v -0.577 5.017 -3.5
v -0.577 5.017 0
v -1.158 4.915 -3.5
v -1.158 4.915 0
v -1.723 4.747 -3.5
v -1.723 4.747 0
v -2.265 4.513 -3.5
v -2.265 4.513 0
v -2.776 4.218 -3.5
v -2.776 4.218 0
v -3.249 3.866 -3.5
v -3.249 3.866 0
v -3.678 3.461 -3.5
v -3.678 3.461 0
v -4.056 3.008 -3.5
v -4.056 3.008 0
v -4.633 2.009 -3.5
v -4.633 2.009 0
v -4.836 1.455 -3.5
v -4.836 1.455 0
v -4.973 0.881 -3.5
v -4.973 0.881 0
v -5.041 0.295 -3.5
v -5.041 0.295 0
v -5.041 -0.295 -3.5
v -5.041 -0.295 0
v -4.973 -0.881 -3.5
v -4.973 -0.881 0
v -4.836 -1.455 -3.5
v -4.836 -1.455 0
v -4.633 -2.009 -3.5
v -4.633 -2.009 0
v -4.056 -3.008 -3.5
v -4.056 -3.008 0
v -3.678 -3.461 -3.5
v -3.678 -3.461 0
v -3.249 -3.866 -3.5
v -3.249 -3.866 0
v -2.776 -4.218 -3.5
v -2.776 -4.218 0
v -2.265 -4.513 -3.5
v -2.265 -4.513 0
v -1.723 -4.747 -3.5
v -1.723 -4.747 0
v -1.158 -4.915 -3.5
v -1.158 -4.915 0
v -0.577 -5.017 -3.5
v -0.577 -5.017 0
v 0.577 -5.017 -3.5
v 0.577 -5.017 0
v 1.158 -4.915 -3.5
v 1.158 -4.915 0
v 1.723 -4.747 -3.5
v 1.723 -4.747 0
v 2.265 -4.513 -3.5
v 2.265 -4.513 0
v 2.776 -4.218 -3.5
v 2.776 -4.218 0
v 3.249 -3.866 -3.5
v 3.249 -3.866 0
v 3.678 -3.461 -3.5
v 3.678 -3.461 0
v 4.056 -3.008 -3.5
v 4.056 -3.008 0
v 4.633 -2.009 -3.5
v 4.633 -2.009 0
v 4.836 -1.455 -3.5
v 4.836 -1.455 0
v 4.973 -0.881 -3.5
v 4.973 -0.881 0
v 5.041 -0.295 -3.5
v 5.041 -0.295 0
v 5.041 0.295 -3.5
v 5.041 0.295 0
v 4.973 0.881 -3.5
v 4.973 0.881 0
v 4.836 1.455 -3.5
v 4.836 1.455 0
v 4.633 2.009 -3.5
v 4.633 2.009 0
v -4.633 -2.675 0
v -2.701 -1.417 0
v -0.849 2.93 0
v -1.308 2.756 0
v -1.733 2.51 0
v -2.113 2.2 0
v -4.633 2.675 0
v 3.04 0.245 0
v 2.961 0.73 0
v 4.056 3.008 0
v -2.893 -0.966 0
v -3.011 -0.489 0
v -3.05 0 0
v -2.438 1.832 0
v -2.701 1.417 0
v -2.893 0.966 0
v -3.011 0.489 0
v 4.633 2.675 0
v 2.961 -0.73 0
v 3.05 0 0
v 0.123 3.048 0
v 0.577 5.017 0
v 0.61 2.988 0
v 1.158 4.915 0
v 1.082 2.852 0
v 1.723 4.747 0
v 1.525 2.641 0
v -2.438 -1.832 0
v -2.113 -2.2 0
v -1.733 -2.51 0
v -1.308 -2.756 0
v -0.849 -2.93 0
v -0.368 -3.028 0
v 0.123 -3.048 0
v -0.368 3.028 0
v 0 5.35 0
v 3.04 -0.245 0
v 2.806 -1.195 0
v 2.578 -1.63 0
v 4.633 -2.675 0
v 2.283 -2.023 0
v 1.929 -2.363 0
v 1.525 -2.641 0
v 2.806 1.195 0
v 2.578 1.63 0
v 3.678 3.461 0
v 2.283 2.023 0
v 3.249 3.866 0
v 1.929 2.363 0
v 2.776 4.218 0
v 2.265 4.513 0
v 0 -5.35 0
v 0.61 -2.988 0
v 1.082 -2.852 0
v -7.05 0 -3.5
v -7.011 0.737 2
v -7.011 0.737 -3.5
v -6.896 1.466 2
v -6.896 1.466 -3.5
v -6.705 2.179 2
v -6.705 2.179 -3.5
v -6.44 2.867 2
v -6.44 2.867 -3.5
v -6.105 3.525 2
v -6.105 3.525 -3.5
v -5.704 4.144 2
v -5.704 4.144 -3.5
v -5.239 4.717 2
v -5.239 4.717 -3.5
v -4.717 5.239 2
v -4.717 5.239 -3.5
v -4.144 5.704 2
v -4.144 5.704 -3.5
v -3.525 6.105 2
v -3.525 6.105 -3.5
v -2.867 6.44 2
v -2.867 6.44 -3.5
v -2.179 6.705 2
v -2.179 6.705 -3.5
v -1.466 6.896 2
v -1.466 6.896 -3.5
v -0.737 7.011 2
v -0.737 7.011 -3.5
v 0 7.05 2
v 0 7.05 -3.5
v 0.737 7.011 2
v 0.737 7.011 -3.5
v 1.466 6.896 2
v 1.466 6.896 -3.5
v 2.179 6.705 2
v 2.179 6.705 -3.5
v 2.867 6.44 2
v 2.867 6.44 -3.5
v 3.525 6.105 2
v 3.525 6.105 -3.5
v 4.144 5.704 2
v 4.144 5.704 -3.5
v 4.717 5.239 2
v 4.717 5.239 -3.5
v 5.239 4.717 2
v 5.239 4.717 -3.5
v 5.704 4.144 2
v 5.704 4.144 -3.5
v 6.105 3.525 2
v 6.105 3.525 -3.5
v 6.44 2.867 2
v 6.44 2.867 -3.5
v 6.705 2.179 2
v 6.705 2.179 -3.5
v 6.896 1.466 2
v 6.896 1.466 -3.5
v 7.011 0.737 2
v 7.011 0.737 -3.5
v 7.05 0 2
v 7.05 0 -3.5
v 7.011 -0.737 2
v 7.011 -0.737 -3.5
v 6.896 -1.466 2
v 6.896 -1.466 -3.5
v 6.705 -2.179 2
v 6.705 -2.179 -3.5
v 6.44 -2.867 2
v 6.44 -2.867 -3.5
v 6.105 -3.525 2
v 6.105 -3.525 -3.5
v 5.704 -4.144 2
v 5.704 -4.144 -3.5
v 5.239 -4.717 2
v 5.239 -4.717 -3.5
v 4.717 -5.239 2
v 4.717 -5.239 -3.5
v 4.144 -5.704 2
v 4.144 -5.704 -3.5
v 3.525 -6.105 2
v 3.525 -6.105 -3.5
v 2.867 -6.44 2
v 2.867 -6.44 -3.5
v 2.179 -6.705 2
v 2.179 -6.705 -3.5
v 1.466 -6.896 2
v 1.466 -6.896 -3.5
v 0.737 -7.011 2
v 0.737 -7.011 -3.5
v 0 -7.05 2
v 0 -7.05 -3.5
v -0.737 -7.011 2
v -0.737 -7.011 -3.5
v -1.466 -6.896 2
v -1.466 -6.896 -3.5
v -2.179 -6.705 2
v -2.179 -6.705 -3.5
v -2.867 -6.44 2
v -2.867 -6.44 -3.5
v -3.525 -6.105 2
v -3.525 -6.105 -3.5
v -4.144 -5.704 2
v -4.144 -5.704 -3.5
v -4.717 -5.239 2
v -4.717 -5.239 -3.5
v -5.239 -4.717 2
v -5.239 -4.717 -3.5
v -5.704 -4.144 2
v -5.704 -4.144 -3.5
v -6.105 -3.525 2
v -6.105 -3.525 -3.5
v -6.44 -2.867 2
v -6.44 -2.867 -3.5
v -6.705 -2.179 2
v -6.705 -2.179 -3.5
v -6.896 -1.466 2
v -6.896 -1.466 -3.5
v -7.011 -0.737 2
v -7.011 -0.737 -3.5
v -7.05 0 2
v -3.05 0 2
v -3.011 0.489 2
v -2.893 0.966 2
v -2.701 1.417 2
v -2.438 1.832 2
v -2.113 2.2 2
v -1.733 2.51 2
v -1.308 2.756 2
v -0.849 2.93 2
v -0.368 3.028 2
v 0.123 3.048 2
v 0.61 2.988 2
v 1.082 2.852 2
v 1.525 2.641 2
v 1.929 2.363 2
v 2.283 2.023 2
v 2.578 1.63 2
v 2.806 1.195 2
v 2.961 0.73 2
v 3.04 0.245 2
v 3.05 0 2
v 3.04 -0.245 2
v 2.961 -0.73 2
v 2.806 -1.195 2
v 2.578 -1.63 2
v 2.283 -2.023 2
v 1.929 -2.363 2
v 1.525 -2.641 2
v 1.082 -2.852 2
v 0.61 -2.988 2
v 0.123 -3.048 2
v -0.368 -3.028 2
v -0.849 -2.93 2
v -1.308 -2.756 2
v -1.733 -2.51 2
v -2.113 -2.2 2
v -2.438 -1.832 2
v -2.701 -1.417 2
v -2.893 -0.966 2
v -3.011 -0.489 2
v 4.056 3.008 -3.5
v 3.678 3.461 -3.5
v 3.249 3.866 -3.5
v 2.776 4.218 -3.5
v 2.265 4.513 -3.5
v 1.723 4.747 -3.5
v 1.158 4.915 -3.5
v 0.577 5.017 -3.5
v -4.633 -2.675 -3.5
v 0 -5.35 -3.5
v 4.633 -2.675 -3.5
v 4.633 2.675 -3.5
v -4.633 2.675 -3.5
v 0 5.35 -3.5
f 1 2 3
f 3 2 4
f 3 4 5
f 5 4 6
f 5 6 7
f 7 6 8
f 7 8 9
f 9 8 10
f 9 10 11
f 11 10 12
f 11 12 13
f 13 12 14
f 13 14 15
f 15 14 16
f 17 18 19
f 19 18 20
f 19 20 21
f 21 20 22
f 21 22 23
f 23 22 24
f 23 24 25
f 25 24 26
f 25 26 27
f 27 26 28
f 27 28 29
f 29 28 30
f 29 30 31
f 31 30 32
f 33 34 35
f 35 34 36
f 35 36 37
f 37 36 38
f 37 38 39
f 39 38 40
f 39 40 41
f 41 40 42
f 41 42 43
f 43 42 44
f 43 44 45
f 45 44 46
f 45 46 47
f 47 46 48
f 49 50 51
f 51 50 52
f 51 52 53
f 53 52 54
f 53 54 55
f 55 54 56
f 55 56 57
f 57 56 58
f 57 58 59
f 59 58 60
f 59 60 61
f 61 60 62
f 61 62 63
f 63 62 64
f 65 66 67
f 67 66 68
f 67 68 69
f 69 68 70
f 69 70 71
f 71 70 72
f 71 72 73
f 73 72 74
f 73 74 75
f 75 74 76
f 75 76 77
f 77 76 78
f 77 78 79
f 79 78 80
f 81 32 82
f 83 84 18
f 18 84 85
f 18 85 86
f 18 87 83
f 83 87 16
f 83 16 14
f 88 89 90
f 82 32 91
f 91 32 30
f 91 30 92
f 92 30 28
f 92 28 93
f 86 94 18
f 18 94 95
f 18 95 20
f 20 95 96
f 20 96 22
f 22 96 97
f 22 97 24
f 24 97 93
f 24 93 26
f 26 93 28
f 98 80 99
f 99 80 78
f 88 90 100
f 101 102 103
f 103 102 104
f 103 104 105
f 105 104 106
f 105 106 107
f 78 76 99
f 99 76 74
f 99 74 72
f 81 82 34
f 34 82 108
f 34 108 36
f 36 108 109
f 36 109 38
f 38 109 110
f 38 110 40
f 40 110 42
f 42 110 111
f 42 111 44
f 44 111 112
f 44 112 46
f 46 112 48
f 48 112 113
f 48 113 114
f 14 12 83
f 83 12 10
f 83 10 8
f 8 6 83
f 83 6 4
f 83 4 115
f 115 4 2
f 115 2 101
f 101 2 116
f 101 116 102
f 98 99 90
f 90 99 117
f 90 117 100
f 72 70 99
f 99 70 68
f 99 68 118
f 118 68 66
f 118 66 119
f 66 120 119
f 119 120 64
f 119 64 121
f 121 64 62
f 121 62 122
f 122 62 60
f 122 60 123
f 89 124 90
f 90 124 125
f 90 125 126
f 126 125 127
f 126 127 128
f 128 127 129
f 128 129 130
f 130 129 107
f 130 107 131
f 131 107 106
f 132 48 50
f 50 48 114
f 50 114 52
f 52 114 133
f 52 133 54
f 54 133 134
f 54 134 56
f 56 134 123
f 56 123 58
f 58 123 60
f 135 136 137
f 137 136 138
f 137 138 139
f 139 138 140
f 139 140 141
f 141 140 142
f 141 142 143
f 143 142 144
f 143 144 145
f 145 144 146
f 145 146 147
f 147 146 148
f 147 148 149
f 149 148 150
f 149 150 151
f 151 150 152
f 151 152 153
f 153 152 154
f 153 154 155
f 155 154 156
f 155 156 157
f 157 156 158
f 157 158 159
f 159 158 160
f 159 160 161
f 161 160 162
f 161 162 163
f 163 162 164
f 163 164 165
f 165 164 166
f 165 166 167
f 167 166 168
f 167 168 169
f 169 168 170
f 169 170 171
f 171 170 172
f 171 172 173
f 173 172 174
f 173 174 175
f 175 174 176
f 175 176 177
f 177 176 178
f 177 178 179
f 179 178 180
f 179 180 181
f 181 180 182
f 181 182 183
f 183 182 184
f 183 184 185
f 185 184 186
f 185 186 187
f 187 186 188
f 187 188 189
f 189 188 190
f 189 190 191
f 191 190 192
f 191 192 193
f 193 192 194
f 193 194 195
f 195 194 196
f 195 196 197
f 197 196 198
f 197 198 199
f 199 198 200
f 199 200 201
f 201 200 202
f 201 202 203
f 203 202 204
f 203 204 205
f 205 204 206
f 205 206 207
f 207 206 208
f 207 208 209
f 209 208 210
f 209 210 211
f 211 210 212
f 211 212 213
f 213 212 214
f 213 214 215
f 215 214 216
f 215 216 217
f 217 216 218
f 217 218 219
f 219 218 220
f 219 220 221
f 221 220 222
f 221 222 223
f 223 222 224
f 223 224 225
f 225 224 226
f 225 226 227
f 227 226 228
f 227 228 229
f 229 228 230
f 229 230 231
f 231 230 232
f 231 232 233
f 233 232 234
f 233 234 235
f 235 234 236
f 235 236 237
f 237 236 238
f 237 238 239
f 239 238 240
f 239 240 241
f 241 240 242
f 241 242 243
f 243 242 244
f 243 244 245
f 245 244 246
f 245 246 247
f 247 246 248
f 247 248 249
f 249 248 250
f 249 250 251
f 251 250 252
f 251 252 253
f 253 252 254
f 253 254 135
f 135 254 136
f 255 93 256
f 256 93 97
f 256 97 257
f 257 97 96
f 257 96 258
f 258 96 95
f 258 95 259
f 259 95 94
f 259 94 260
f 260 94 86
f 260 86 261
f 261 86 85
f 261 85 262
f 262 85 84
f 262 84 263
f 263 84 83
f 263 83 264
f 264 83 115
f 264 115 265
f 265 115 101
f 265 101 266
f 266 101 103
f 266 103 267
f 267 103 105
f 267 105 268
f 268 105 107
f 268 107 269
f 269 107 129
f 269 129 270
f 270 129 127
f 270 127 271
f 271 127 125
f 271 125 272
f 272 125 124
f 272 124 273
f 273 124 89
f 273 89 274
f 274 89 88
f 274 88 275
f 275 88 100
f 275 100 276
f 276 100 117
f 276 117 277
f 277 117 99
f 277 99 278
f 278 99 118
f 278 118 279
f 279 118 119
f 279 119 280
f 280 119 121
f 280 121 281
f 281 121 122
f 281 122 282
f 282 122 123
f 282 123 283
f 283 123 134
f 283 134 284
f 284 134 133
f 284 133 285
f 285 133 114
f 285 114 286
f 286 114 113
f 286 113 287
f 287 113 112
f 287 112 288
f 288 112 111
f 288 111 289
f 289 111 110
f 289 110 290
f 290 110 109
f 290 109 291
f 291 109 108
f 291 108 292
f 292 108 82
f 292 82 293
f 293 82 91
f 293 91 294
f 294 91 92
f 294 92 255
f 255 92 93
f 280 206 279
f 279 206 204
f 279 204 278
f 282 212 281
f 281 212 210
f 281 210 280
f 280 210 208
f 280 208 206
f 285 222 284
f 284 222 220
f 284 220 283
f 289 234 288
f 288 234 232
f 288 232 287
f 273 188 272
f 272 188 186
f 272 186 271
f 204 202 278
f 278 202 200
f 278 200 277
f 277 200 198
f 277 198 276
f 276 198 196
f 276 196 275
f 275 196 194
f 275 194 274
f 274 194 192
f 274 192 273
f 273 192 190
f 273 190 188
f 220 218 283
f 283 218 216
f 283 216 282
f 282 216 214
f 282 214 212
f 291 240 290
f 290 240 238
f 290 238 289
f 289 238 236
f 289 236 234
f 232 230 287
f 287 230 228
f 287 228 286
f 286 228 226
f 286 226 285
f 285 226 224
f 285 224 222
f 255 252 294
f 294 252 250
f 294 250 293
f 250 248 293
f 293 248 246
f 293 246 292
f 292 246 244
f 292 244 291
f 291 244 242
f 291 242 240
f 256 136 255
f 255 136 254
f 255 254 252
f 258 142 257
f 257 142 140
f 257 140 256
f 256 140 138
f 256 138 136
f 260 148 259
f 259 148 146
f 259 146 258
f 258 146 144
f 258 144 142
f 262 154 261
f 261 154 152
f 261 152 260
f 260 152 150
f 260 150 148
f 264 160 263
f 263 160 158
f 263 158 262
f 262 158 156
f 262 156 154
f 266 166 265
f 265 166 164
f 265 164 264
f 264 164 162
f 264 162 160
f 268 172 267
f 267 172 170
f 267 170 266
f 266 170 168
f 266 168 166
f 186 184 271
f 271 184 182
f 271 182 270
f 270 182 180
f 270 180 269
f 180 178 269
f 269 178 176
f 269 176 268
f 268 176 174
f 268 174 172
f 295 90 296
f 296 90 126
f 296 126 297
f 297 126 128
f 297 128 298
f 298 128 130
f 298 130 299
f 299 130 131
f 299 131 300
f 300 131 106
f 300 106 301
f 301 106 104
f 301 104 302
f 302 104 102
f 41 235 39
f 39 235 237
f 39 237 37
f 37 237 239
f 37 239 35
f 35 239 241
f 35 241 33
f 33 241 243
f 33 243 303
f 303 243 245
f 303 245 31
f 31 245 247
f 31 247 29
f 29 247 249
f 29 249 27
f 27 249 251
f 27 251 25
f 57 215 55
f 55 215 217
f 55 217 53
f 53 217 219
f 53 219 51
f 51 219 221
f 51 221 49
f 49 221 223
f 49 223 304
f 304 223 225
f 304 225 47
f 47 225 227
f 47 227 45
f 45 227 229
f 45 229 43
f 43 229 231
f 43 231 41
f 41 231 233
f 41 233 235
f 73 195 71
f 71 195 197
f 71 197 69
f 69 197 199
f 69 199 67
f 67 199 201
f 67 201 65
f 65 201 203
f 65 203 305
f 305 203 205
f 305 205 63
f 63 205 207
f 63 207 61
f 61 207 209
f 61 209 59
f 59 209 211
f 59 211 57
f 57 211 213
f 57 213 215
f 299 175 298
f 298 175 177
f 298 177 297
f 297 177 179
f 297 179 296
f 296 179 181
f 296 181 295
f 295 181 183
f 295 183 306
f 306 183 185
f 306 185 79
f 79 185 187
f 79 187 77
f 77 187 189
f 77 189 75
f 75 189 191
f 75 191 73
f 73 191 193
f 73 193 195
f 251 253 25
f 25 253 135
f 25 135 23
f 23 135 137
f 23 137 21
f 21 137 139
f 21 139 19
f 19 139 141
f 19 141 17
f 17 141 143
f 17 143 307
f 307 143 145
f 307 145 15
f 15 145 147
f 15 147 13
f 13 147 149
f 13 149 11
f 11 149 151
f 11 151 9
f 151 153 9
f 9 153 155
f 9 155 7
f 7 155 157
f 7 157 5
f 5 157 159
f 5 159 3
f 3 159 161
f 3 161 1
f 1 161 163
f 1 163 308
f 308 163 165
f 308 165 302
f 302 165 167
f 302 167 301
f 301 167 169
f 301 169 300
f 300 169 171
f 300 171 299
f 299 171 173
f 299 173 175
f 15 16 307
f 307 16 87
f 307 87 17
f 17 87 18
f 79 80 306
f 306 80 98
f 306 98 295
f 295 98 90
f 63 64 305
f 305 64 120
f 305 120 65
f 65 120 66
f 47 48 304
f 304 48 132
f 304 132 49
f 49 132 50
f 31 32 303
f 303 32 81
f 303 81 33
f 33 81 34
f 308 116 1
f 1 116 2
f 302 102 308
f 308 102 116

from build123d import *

# Parameters (mm, degrees)
SKETCH1_R           = 7.05
SKETCH1_R_2         = 5.05
SKETCH1_R_3         = 3.05
BOSS_EXTRUDE1_DEPTH = 2
BOSS_EXTRUDE2_START = -3.5
SKETCH1_3_R         = 7.05
SKETCH1_3_R_2       = 5.05
BOSS_EXTRUDE2_DEPTH = 3.5
CUT_EXTRUDE1_DEPTH  = 3.5


with BuildPart() as part:
    # Sketch1 → Boss-Extrude1 (new body)
    # profile 1 of 2: a face of its own
    with BuildSketch(Plane.XY):
        Circle(SKETCH1_R)
        Circle(SKETCH1_R_2, mode=Mode.SUBTRACT)
    # profile 2 of 2: a face of its own
    with BuildSketch(Plane.XY):
        Circle(SKETCH1_R_2)
        Circle(SKETCH1_R_3, mode=Mode.SUBTRACT)
    extrude(amount=BOSS_EXTRUDE1_DEPTH)

    # Sketch1<3> → Boss-Extrude2 (add)
    with BuildSketch(Plane.XY.offset(BOSS_EXTRUDE2_START)):
        Circle(SKETCH1_3_R)
        Circle(SKETCH1_3_R_2, mode=Mode.SUBTRACT)
    extrude(amount=BOSS_EXTRUDE2_DEPTH)

    # Sketch2 → Cut-Extrude1 (cut)
    with BuildSketch(Plane(origin=(0, 0, -3.5), x_dir=(-1, 0, 0), z_dir=(0, 0, -1))):
        with BuildLine():
            Line((0.576871206, 5.016943254), (0, 5.35))
            Line((0, 5.35), (-0.576871206, 5.016943254))
            ThreePointArc((-0.576871206, 5.016943254), (0, 5.05), (0.576871206, 5.016943254))
        make_face()
        with BuildLine():
            Line((4.63323591, 2.675), (4.056364704, 3.008056746))
            ThreePointArc((4.056364704, 3.008056746), (4.373428289, 2.525), (4.63323591, 2.008886507))
            Line((4.63323591, 2.008886507), (4.63323591, 2.675))
        make_face()
        with BuildLine():
            ThreePointArc((-4.63323591, 2.008886507), (-4.373428289, 2.525), (-4.056364704, 3.008056746))
            Line((-4.056364704, 3.008056746), (-4.63323591, 2.675))
            Line((-4.63323591, 2.675), (-4.63323591, 2.008886507))
        make_face()
        with BuildLine():
            ThreePointArc((-4.056364704, -3.008056746), (-4.373428289, -2.525), (-4.63323591, -2.008886507))
            Line((-4.63323591, -2.008886507), (-4.63323591, -2.675))
            Line((-4.63323591, -2.675), (-4.056364704, -3.008056746))
        make_face()
        with BuildLine():
            ThreePointArc((0.576871206, -5.016943254), (0, -5.05), (-0.576871206, -5.016943254))
            Line((-0.576871206, -5.016943254), (0, -5.35))
            Line((0, -5.35), (0.576871206, -5.016943254))
        make_face()
        with BuildLine():
            Line((4.63323591, -2.675), (4.63323591, -2.008886507))
            ThreePointArc((4.63323591, -2.008886507), (4.373428289, -2.525), (4.056364704, -3.008056746))
            Line((4.056364704, -3.008056746), (4.63323591, -2.675))
        make_face()
    extrude(amount=-CUT_EXTRUDE1_DEPTH, mode=Mode.SUBTRACT)


solid = part.part
